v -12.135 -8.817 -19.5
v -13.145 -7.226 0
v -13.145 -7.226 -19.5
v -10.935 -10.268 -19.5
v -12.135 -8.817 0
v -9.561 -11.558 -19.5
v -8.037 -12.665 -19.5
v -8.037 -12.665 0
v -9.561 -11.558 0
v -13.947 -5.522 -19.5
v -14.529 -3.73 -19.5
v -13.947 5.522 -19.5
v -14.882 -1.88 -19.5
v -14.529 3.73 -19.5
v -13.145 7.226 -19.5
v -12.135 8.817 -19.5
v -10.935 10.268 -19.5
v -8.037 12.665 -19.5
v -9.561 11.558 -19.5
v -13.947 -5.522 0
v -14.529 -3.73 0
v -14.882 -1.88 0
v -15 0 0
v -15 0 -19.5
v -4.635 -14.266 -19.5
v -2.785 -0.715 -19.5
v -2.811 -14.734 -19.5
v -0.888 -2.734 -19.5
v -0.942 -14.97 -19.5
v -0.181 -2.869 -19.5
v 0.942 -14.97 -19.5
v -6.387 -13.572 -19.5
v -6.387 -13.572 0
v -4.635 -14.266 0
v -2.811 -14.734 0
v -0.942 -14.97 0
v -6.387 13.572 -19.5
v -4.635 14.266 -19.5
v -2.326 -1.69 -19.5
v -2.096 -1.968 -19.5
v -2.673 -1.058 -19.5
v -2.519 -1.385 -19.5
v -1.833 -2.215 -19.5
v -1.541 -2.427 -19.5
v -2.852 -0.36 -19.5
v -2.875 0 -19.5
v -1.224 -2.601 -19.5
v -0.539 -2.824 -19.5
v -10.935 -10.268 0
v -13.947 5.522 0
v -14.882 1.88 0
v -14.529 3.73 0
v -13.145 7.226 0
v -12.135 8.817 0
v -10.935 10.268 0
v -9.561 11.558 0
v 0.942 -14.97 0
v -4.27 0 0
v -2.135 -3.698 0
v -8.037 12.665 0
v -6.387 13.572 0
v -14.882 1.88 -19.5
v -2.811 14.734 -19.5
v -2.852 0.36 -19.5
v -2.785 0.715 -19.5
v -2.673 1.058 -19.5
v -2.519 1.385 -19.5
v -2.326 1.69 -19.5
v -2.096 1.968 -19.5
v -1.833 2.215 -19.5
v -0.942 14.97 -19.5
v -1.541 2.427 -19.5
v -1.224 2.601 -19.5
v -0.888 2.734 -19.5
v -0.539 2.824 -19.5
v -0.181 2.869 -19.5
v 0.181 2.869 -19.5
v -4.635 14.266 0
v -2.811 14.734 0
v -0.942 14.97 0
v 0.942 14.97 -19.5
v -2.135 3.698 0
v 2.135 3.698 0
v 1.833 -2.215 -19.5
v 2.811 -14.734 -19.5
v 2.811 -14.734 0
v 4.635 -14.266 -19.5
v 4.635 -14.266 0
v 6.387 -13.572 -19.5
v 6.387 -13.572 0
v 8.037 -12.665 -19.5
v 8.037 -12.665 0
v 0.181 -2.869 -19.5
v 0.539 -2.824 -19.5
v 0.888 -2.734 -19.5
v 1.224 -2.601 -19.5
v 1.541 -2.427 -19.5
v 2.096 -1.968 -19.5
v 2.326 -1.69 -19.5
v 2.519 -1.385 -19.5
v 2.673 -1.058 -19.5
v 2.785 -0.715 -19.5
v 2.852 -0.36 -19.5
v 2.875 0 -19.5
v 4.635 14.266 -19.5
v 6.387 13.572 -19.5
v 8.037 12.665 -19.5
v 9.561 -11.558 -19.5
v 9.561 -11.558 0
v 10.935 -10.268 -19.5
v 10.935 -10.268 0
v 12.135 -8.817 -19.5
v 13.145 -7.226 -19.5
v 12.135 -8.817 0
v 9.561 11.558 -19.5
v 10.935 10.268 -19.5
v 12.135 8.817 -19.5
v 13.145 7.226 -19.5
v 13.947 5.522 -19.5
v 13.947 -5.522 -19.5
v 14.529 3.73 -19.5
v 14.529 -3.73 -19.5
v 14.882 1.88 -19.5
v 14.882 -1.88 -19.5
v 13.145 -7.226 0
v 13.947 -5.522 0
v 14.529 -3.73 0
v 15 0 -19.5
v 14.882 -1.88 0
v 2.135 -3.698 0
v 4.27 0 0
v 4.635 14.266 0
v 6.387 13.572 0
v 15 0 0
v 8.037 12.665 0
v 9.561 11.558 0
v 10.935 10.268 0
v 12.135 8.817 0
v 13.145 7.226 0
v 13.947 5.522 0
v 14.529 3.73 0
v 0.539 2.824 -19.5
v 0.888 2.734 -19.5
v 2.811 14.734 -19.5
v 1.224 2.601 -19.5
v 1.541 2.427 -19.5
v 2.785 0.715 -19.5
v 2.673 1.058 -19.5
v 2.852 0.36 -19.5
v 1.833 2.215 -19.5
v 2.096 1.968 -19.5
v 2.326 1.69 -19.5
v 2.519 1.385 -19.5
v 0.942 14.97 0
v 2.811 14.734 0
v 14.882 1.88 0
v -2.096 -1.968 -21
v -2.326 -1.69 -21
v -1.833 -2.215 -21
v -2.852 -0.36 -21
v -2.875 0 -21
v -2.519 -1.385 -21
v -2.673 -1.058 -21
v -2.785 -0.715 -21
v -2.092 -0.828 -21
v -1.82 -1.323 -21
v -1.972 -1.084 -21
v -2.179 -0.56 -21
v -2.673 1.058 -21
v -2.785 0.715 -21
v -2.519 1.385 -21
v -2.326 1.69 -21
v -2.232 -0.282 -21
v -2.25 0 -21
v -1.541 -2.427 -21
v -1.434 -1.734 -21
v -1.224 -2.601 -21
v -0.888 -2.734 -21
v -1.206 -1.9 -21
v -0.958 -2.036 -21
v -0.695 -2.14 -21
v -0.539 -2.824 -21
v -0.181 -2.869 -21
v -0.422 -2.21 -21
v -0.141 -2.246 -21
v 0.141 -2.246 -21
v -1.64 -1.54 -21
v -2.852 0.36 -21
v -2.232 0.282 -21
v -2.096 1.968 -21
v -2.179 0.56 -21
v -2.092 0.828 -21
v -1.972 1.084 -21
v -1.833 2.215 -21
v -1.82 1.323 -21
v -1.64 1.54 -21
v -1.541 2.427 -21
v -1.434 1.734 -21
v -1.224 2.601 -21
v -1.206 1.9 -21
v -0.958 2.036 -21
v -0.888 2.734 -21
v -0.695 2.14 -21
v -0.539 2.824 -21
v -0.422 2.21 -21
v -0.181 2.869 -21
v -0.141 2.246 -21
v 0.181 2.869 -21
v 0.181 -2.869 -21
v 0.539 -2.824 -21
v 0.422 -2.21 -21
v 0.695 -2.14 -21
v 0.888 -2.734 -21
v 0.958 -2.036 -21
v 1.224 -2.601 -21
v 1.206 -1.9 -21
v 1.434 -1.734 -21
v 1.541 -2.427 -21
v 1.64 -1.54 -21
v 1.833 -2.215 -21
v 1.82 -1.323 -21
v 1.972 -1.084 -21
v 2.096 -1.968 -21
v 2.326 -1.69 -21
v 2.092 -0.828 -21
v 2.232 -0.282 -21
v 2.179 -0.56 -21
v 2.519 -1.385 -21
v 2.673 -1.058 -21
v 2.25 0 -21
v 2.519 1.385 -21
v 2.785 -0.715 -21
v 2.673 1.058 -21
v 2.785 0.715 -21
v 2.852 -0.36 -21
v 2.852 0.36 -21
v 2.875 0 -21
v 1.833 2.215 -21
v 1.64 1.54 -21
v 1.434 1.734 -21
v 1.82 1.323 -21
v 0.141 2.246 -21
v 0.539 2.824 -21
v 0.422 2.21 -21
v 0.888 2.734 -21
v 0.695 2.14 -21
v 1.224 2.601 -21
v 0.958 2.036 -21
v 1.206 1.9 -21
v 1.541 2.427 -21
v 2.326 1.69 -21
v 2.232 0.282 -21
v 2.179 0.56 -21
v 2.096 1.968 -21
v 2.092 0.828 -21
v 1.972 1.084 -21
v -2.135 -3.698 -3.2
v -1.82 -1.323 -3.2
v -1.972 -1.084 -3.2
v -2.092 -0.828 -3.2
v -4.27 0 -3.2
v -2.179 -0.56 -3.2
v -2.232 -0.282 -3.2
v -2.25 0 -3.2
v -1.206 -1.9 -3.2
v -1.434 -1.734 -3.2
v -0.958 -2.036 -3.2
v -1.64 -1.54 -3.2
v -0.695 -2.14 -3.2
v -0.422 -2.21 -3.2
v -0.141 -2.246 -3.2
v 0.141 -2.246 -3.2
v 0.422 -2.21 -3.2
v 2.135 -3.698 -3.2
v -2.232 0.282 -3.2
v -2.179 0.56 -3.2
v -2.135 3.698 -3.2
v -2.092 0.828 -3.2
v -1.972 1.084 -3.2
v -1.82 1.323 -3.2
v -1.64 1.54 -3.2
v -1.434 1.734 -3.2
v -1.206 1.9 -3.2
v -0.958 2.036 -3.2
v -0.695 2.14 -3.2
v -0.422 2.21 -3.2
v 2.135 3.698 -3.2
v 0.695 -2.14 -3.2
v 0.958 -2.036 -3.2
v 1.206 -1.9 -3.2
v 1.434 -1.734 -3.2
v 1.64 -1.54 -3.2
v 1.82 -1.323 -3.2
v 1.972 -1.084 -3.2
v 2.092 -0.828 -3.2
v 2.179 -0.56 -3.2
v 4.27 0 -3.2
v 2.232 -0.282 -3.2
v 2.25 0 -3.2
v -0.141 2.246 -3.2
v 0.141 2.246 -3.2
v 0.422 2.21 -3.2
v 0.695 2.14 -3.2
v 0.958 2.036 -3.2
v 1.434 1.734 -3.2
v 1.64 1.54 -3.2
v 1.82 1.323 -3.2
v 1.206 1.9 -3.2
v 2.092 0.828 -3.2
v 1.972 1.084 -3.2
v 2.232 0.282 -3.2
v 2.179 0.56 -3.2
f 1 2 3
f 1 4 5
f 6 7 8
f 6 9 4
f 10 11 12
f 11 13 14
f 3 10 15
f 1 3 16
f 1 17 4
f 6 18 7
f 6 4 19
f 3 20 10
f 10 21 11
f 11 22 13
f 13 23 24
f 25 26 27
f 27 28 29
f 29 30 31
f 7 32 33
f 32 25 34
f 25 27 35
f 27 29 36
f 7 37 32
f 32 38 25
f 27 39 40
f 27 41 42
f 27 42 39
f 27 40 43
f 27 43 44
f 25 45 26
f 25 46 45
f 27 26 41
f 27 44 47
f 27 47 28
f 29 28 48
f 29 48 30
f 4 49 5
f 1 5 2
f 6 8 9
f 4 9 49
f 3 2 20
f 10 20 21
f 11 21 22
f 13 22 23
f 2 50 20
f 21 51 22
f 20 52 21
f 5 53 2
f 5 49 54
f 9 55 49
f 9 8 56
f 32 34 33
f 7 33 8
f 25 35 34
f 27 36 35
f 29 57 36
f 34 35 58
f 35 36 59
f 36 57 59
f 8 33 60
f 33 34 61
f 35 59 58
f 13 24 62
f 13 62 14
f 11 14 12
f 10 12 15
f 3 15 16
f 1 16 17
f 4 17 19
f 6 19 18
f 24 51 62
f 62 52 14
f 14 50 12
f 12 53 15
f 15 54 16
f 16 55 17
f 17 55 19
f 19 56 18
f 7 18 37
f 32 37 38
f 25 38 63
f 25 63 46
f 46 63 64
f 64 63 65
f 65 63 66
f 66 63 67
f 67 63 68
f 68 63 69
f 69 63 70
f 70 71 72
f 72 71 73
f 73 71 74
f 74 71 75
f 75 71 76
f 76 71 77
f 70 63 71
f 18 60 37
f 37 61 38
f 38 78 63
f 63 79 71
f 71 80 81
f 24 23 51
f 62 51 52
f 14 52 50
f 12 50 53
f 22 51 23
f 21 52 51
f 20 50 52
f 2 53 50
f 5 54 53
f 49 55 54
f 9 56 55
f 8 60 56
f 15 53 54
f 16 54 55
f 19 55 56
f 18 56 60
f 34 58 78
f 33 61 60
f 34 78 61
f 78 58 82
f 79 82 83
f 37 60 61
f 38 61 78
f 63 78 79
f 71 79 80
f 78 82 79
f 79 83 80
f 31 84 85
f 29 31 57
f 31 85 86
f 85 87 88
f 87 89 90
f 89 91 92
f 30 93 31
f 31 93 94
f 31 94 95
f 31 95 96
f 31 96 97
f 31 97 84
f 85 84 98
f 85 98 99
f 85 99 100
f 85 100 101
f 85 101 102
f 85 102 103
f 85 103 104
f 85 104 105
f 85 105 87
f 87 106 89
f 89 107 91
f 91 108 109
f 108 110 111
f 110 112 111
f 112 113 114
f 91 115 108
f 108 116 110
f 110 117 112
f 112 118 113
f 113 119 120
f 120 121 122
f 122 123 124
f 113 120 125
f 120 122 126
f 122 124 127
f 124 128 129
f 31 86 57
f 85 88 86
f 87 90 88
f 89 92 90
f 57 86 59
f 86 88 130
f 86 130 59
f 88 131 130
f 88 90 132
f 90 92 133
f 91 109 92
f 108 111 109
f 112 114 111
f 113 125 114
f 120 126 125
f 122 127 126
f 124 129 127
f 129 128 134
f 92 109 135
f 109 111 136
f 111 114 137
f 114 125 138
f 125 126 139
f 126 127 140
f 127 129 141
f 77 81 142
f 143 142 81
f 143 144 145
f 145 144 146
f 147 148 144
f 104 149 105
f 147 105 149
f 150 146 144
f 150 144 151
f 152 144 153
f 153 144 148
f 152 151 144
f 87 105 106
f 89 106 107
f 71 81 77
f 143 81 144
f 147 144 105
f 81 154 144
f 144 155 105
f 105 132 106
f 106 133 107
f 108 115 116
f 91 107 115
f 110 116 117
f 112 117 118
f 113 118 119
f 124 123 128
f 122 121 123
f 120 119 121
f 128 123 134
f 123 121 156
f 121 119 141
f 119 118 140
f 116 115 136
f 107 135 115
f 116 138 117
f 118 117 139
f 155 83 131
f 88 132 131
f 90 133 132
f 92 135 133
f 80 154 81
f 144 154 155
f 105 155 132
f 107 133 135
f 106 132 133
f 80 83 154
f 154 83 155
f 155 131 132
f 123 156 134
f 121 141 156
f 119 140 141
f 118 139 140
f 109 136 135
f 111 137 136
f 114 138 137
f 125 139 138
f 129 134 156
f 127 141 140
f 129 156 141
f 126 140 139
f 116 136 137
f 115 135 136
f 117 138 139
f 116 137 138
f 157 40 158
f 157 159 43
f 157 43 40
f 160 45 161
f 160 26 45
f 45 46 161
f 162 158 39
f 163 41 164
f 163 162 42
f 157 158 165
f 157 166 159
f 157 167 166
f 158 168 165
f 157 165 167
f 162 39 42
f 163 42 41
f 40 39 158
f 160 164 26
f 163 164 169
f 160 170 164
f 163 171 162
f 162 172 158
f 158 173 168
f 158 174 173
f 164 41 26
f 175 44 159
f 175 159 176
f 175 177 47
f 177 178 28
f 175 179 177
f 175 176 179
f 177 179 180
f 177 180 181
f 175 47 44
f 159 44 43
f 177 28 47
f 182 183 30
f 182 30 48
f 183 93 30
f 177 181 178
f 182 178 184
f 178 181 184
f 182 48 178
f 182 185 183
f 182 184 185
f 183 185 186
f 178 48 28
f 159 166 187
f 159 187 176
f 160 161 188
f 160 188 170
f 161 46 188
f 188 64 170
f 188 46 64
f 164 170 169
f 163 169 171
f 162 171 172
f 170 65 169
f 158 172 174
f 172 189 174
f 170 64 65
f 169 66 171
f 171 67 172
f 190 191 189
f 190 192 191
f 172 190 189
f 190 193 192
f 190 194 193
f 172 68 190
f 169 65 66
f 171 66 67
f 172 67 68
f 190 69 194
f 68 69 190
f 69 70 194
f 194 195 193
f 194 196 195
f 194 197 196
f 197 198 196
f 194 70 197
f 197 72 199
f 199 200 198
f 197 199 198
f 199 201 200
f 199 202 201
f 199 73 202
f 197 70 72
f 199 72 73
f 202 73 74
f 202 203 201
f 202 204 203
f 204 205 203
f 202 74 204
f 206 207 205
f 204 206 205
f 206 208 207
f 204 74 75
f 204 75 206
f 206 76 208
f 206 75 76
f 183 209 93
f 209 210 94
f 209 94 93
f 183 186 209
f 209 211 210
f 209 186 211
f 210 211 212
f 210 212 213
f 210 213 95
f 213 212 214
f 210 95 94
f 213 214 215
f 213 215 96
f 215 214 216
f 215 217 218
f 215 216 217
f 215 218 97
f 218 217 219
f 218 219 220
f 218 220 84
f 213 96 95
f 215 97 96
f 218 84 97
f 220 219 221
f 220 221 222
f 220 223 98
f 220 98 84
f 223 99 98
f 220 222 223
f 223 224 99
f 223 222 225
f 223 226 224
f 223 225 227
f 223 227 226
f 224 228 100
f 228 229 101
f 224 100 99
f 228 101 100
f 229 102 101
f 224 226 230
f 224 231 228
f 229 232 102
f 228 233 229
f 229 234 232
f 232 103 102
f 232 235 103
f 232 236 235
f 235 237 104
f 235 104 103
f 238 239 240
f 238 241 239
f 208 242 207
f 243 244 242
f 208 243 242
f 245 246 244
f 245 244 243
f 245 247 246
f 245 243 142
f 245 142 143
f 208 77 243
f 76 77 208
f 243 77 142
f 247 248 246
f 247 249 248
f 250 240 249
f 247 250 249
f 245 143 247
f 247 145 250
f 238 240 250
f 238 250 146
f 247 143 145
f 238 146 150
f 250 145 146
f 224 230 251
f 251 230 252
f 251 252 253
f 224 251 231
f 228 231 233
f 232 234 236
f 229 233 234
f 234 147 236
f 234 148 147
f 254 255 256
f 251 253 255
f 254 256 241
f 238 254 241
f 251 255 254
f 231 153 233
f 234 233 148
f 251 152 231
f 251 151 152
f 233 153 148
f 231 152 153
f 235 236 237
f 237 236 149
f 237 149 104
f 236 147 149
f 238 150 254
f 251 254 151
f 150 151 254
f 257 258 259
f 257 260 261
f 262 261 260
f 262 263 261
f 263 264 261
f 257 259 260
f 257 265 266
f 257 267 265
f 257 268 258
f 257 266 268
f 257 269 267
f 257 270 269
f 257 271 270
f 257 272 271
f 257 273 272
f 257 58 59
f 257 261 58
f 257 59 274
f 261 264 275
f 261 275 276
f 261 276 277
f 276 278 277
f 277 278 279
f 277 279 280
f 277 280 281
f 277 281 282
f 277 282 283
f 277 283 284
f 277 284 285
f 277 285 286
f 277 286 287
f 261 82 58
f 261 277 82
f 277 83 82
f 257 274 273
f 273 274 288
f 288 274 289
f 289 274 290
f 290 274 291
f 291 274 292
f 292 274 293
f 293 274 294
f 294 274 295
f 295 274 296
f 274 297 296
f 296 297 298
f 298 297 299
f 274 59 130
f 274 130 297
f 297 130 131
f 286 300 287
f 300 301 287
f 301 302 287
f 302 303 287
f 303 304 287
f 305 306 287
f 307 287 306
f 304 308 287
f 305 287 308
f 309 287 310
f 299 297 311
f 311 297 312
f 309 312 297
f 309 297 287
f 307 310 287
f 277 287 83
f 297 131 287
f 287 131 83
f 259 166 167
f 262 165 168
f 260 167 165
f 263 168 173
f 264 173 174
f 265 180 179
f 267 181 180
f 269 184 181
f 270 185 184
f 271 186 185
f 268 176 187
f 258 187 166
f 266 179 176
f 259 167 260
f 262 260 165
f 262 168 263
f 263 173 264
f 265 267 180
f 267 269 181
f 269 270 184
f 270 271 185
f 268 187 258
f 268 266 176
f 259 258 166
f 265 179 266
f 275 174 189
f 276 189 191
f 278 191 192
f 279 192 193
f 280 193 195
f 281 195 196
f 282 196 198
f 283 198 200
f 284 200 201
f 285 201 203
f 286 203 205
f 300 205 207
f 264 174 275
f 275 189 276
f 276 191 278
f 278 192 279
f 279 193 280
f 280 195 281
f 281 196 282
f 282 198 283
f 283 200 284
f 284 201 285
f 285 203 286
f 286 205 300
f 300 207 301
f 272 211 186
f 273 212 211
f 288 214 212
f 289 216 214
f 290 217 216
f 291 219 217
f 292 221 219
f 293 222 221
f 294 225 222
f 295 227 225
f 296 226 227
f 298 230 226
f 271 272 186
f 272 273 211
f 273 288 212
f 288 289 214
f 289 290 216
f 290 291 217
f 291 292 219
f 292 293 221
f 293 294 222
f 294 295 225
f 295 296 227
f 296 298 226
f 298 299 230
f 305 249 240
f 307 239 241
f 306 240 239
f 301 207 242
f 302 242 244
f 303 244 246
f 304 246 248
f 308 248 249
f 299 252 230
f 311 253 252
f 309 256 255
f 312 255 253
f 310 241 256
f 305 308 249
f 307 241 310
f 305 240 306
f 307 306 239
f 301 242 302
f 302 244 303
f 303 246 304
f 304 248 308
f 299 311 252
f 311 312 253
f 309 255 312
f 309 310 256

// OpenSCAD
$fn = 50;


difference() {
	union() {
		translate(v = [0, 0, -19.5000000000]) {
			cylinder(h = 19.5000000000, r = 15.0000000000);
		}
		#translate(v = [0, 0, -21.0000000000]) {
			cylinder(h = 21, r = 2.8750000000);
		}
	}
	union() {
		translate(v = [0, 0, 0]) {
			rotate(a = [0, 0, 0]) {
				difference() {
					union() {
						translate(v = [0, 0, -3.2000000000]) {
							linear_extrude(height = 3.2000000000) {
								polygon(points = [[4.2698000000, 0.0000000000], [2.1349000000, 3.6977552691], [-2.1349000000, 3.6977552691], [-4.2698000000, 0.0000000000], [-2.1349000000, -3.6977552691], [2.1349000000, -3.6977552691]]);
							}
						}
					}
					union();
				}
			}
		}
		#translate(v = [0, 0, -100.0000000000]) {
			cylinder(h = 200, r = 2.2500000000);
		}
	}
}
